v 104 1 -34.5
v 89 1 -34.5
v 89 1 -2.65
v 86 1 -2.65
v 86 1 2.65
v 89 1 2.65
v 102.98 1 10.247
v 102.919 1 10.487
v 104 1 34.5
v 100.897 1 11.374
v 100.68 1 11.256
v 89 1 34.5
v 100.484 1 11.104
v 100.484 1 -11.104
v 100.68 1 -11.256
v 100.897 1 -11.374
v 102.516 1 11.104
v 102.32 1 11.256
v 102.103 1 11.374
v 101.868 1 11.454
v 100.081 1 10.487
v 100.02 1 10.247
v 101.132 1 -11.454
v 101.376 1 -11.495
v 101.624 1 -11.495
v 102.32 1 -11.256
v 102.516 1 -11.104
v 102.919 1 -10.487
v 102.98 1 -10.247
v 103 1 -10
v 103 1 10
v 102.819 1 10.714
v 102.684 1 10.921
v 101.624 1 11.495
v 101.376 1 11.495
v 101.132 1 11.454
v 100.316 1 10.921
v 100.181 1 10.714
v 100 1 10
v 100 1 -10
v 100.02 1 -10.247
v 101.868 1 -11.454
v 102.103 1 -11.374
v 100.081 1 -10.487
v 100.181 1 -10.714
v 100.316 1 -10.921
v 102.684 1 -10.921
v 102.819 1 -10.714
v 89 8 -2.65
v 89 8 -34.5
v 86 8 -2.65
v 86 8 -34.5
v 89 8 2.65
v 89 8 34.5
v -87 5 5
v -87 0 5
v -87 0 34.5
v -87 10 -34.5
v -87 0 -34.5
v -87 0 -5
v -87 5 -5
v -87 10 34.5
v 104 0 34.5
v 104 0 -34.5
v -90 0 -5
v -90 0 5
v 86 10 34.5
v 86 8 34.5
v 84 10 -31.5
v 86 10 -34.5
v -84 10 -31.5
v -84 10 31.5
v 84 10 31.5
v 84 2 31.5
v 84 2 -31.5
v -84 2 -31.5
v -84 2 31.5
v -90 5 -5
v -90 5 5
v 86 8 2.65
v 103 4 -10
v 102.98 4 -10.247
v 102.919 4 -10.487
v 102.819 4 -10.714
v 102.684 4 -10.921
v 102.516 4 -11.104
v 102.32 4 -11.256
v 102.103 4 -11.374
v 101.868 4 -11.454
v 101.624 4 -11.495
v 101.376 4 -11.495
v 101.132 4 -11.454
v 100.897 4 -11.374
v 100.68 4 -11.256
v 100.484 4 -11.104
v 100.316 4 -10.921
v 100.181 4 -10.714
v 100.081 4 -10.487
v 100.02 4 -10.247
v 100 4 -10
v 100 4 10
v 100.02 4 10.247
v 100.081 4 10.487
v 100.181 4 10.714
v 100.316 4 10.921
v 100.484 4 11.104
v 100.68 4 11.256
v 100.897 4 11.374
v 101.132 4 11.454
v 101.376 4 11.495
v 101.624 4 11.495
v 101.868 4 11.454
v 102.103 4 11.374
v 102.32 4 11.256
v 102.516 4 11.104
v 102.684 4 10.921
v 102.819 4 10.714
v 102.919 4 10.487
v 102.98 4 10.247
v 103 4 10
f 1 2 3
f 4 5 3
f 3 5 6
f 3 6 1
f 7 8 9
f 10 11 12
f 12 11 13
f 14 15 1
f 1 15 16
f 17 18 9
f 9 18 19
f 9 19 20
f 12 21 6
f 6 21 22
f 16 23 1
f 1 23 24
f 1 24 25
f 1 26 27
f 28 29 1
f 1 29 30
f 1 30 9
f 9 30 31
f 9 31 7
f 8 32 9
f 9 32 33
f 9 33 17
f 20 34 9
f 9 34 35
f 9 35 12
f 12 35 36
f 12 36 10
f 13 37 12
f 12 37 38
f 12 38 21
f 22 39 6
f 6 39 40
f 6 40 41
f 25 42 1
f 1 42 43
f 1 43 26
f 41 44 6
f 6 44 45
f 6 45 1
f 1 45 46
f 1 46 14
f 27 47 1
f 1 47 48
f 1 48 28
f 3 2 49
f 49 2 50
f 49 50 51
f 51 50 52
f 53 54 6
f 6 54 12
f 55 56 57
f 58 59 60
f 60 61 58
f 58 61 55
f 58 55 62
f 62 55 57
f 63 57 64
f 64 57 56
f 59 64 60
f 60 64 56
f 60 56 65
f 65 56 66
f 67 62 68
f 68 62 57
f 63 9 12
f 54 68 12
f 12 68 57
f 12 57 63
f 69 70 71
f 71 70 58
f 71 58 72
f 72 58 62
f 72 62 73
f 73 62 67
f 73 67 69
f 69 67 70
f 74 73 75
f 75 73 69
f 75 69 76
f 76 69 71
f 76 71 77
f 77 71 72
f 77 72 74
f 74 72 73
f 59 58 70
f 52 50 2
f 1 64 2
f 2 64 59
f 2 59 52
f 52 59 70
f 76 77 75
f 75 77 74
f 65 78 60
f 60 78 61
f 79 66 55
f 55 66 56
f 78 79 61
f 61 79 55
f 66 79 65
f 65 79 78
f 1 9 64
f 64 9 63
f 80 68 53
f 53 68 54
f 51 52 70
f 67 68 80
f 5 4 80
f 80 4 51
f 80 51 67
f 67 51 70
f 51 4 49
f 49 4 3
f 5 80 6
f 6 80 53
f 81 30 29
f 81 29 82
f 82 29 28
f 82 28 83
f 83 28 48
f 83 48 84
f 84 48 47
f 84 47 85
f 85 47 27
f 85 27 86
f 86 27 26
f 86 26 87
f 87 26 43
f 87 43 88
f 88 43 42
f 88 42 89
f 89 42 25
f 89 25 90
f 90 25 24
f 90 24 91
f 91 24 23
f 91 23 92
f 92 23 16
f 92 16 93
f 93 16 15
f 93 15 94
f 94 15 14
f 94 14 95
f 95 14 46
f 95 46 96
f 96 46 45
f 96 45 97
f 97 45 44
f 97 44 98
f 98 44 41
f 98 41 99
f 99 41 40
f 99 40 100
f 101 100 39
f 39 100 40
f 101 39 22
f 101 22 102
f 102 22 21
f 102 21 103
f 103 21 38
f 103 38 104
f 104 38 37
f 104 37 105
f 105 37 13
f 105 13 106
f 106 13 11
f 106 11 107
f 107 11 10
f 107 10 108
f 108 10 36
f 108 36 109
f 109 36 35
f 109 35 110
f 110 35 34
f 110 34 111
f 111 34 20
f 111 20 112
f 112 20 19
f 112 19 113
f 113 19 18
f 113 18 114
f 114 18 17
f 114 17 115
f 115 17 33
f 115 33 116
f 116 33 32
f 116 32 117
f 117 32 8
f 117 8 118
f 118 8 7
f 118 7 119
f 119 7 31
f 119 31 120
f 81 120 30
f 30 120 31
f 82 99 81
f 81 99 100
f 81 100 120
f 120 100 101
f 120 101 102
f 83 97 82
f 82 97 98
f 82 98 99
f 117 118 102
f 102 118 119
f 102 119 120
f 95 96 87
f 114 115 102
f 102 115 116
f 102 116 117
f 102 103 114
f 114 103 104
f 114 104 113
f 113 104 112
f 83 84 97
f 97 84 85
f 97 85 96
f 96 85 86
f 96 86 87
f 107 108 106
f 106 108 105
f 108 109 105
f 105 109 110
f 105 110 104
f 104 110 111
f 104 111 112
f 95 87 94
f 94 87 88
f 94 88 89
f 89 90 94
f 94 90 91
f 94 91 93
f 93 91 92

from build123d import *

# Parameters (mm, degrees)
SKETCH1_W                      = 168
SKETCH1_H                      = 63
BOSS_EXTRUDE1_DEPTH            = 10
SKETCH2_W                      = 168
SKETCH2_H                      = 63
BOSS_EXTRUDE2_DEPTH            = 2
SKETCH3_W                      = 10
SKETCH3_H                      = 25
CUT_EXTRUDE1_DEPTH             = 111.028405423
SKETCH4_W                      = 10
SKETCH4_H                      = 8
CUT_EXTRUDE2_DEPTH             = 3
CUT_EXTRUDE2_DIRECTION_2_REACH = 114.236
SKETCH6_W                      = 10
SKETCH6_H                      = 1
BOSS_EXTRUDE4_DEPTH            = 31
SKETCH7_R                      = 1.5
BOSS_EXTRUDE5_DEPTH            = 3
SKETCH8_W                      = 10
SKETCH8_H                      = 5
BOSS_EXTRUDE6_DEPTH            = 3
SKETCH9_W                      = 15
SKETCH9_H                      = 10
CUT_EXTRUDE3_DEPTH             = 126.207827231
SKETCH10_W                     = 69
SKETCH10_H                     = 1
BOSS_EXTRUDE7_DEPTH            = 15
SKETCH12_W                     = 3
SKETCH12_H                     = 2
CUT_EXTRUDE5_DEPTH             = 126.207827231
SKETCH13_W                     = 5.3
SKETCH13_H                     = 7
CUT_EXTRUDE6_DEPTH             = 3
BOSS_EXTRUDE8_DEPTH            = 3


with BuildPart() as part:
    # Sketch1 → Boss-Extrude1 (new body)
    with BuildSketch(Plane(origin=(0, 0, 0), x_dir=(1, 0, 0), z_dir=(0, 1, 0))):
        Polygon((0, 34.5), (-87, 34.5), (-87, -34.5), (84, -34.5), (104, -34.5), (104, 34.5), (84, 34.5), align=None)
        Rectangle(SKETCH1_W, SKETCH1_H, mode=Mode.SUBTRACT)
    extrude(amount=BOSS_EXTRUDE1_DEPTH)

    # Sketch2 → Boss-Extrude2 (add)
    with BuildSketch(Plane(origin=(0, 0, 0), x_dir=(1, 0, 0), z_dir=(0, 1, 0))):
        Rectangle(SKETCH2_W, SKETCH2_H)
    extrude(amount=BOSS_EXTRUDE2_DEPTH)

    # Sketch3 → Cut-Extrude1 (cut, through all)
    with BuildSketch(Plane(origin=(0, 10, 0), x_dir=(1, 0, 0), z_dir=(0, 1, 0))):
        with Locations((94, 19)):
            Rectangle(SKETCH3_W, SKETCH3_H)
    cut_extrude1 = extrude(amount=-CUT_EXTRUDE1_DEPTH, mode=Mode.SUBTRACT)

    # Mirror1: Cut-Extrude1 across plane
    add(cut_extrude1.mirror(Plane.XY), mode=Mode.SUBTRACT)

    # Sketch4 → Cut-Extrude2 (cut)
    with BuildSketch(Plane.XY.offset(6.5)):
        with Locations((94, 4)):
            Rectangle(SKETCH4_W, SKETCH4_H)
    cut_extrude2 = extrude(amount=-CUT_EXTRUDE2_DEPTH, mode=Mode.SUBTRACT)

    # Sketch4 → Cut-Extrude2 direction 2 (cut, up to next)
    with BuildSketch(Plane.XY.offset(6.5), mode=Mode.PRIVATE) as cut_extrude2_direction_2_sk1:
        with Locations((94, 4)):
            Rectangle(SKETCH4_W, SKETCH4_H)
    cut_extrude2_direction_2_tool1 = extrude(cut_extrude2_direction_2_sk1.sketch, amount=CUT_EXTRUDE2_DIRECTION_2_REACH, mode=Mode.PRIVATE) & part.part
    cut_extrude2_direction_2 = cut_extrude2_direction_2_tool1.solids().sort_by_distance((94, 4, 6.5))[0]
    add(cut_extrude2_direction_2, mode=Mode.SUBTRACT)

    # Mirror2: Cut-Extrude2, Cut-Extrude2 direction 2 across plane
    add(cut_extrude2.mirror(Plane.XY), mode=Mode.SUBTRACT)
    add(cut_extrude2_direction_2.mirror(Plane.XY), mode=Mode.SUBTRACT)

    # Sketch6 → Boss-Extrude4 (add)
    with BuildSketch(Plane.XY.offset(3.5)):
        with Locations((94, 0.5)):
            Rectangle(SKETCH6_W, SKETCH6_H)
    boss_extrude4 = extrude(amount=BOSS_EXTRUDE4_DEPTH)

    # Mirror5: Boss-Extrude4 across plane
    add(boss_extrude4.mirror(Plane.XY))

    # Sketch7 → Boss-Extrude5 (add)
    with BuildSketch(Plane.XY.offset(3.5)):
        with Locations((94, 4.5)):
            Circle(SKETCH7_R)
    boss_extrude5 = extrude(amount=BOSS_EXTRUDE5_DEPTH)

    # Mirror6: Boss-Extrude5 across plane
    add(boss_extrude5.mirror(Plane.XY))

    # Sketch8 → Boss-Extrude6 (add)
    with BuildSketch(Plane.ZY.offset(87)):
        with Locations((0, 2.5)):
            Rectangle(SKETCH8_W, SKETCH8_H)
    extrude(amount=BOSS_EXTRUDE6_DEPTH)

    # Sketch9 → Cut-Extrude3 (cut, through all)
    with BuildSketch(Plane.XY.offset(34.5)):
        with Locations((96.5, 5)):
            Rectangle(SKETCH9_W, SKETCH9_H)
    extrude(amount=-CUT_EXTRUDE3_DEPTH, mode=Mode.SUBTRACT)

    # Sketch10 → Boss-Extrude7 (add)
    with BuildSketch(Plane(origin=(89, 0, 0), x_dir=(0, 0, -1), z_dir=(1, 0, 0))):
        with Locations((0, 0.5)):
            Rectangle(SKETCH10_W, SKETCH10_H)
    extrude(amount=BOSS_EXTRUDE7_DEPTH)

    # Sketch12 → Cut-Extrude5 (cut, through all)
    with BuildSketch(Plane.XY.offset(34.5)):
        with Locations((87.5, 9)):
            Rectangle(SKETCH12_W, SKETCH12_H)
    extrude(amount=-CUT_EXTRUDE5_DEPTH, mode=Mode.SUBTRACT)

    # Sketch13 → Cut-Extrude6 (cut)
    with BuildSketch(Plane(origin=(89, 0, 0), x_dir=(0, 0, -1), z_dir=(1, 0, 0))):
        with Locations((0, 4.5)):
            Rectangle(SKETCH13_W, SKETCH13_H)
    extrude(amount=-CUT_EXTRUDE6_DEPTH, mode=Mode.SUBTRACT)

    # Sketch15 → Boss-Extrude8 (add)
    with BuildSketch(Plane(origin=(0, 1, 0), x_dir=(1, 0, 0), z_dir=(0, 1, 0))):
        with BuildLine():
            Line((103, 10), (103, -10))
            ThreePointArc((103, -10), (101.5, -11.5), (100, -10))
            Line((100, -10), (100, 10))
            ThreePointArc((100, 10), (101.5, 11.5), (103, 10))
        make_face()
    extrude(amount=BOSS_EXTRUDE8_DEPTH)


solid = part.part
